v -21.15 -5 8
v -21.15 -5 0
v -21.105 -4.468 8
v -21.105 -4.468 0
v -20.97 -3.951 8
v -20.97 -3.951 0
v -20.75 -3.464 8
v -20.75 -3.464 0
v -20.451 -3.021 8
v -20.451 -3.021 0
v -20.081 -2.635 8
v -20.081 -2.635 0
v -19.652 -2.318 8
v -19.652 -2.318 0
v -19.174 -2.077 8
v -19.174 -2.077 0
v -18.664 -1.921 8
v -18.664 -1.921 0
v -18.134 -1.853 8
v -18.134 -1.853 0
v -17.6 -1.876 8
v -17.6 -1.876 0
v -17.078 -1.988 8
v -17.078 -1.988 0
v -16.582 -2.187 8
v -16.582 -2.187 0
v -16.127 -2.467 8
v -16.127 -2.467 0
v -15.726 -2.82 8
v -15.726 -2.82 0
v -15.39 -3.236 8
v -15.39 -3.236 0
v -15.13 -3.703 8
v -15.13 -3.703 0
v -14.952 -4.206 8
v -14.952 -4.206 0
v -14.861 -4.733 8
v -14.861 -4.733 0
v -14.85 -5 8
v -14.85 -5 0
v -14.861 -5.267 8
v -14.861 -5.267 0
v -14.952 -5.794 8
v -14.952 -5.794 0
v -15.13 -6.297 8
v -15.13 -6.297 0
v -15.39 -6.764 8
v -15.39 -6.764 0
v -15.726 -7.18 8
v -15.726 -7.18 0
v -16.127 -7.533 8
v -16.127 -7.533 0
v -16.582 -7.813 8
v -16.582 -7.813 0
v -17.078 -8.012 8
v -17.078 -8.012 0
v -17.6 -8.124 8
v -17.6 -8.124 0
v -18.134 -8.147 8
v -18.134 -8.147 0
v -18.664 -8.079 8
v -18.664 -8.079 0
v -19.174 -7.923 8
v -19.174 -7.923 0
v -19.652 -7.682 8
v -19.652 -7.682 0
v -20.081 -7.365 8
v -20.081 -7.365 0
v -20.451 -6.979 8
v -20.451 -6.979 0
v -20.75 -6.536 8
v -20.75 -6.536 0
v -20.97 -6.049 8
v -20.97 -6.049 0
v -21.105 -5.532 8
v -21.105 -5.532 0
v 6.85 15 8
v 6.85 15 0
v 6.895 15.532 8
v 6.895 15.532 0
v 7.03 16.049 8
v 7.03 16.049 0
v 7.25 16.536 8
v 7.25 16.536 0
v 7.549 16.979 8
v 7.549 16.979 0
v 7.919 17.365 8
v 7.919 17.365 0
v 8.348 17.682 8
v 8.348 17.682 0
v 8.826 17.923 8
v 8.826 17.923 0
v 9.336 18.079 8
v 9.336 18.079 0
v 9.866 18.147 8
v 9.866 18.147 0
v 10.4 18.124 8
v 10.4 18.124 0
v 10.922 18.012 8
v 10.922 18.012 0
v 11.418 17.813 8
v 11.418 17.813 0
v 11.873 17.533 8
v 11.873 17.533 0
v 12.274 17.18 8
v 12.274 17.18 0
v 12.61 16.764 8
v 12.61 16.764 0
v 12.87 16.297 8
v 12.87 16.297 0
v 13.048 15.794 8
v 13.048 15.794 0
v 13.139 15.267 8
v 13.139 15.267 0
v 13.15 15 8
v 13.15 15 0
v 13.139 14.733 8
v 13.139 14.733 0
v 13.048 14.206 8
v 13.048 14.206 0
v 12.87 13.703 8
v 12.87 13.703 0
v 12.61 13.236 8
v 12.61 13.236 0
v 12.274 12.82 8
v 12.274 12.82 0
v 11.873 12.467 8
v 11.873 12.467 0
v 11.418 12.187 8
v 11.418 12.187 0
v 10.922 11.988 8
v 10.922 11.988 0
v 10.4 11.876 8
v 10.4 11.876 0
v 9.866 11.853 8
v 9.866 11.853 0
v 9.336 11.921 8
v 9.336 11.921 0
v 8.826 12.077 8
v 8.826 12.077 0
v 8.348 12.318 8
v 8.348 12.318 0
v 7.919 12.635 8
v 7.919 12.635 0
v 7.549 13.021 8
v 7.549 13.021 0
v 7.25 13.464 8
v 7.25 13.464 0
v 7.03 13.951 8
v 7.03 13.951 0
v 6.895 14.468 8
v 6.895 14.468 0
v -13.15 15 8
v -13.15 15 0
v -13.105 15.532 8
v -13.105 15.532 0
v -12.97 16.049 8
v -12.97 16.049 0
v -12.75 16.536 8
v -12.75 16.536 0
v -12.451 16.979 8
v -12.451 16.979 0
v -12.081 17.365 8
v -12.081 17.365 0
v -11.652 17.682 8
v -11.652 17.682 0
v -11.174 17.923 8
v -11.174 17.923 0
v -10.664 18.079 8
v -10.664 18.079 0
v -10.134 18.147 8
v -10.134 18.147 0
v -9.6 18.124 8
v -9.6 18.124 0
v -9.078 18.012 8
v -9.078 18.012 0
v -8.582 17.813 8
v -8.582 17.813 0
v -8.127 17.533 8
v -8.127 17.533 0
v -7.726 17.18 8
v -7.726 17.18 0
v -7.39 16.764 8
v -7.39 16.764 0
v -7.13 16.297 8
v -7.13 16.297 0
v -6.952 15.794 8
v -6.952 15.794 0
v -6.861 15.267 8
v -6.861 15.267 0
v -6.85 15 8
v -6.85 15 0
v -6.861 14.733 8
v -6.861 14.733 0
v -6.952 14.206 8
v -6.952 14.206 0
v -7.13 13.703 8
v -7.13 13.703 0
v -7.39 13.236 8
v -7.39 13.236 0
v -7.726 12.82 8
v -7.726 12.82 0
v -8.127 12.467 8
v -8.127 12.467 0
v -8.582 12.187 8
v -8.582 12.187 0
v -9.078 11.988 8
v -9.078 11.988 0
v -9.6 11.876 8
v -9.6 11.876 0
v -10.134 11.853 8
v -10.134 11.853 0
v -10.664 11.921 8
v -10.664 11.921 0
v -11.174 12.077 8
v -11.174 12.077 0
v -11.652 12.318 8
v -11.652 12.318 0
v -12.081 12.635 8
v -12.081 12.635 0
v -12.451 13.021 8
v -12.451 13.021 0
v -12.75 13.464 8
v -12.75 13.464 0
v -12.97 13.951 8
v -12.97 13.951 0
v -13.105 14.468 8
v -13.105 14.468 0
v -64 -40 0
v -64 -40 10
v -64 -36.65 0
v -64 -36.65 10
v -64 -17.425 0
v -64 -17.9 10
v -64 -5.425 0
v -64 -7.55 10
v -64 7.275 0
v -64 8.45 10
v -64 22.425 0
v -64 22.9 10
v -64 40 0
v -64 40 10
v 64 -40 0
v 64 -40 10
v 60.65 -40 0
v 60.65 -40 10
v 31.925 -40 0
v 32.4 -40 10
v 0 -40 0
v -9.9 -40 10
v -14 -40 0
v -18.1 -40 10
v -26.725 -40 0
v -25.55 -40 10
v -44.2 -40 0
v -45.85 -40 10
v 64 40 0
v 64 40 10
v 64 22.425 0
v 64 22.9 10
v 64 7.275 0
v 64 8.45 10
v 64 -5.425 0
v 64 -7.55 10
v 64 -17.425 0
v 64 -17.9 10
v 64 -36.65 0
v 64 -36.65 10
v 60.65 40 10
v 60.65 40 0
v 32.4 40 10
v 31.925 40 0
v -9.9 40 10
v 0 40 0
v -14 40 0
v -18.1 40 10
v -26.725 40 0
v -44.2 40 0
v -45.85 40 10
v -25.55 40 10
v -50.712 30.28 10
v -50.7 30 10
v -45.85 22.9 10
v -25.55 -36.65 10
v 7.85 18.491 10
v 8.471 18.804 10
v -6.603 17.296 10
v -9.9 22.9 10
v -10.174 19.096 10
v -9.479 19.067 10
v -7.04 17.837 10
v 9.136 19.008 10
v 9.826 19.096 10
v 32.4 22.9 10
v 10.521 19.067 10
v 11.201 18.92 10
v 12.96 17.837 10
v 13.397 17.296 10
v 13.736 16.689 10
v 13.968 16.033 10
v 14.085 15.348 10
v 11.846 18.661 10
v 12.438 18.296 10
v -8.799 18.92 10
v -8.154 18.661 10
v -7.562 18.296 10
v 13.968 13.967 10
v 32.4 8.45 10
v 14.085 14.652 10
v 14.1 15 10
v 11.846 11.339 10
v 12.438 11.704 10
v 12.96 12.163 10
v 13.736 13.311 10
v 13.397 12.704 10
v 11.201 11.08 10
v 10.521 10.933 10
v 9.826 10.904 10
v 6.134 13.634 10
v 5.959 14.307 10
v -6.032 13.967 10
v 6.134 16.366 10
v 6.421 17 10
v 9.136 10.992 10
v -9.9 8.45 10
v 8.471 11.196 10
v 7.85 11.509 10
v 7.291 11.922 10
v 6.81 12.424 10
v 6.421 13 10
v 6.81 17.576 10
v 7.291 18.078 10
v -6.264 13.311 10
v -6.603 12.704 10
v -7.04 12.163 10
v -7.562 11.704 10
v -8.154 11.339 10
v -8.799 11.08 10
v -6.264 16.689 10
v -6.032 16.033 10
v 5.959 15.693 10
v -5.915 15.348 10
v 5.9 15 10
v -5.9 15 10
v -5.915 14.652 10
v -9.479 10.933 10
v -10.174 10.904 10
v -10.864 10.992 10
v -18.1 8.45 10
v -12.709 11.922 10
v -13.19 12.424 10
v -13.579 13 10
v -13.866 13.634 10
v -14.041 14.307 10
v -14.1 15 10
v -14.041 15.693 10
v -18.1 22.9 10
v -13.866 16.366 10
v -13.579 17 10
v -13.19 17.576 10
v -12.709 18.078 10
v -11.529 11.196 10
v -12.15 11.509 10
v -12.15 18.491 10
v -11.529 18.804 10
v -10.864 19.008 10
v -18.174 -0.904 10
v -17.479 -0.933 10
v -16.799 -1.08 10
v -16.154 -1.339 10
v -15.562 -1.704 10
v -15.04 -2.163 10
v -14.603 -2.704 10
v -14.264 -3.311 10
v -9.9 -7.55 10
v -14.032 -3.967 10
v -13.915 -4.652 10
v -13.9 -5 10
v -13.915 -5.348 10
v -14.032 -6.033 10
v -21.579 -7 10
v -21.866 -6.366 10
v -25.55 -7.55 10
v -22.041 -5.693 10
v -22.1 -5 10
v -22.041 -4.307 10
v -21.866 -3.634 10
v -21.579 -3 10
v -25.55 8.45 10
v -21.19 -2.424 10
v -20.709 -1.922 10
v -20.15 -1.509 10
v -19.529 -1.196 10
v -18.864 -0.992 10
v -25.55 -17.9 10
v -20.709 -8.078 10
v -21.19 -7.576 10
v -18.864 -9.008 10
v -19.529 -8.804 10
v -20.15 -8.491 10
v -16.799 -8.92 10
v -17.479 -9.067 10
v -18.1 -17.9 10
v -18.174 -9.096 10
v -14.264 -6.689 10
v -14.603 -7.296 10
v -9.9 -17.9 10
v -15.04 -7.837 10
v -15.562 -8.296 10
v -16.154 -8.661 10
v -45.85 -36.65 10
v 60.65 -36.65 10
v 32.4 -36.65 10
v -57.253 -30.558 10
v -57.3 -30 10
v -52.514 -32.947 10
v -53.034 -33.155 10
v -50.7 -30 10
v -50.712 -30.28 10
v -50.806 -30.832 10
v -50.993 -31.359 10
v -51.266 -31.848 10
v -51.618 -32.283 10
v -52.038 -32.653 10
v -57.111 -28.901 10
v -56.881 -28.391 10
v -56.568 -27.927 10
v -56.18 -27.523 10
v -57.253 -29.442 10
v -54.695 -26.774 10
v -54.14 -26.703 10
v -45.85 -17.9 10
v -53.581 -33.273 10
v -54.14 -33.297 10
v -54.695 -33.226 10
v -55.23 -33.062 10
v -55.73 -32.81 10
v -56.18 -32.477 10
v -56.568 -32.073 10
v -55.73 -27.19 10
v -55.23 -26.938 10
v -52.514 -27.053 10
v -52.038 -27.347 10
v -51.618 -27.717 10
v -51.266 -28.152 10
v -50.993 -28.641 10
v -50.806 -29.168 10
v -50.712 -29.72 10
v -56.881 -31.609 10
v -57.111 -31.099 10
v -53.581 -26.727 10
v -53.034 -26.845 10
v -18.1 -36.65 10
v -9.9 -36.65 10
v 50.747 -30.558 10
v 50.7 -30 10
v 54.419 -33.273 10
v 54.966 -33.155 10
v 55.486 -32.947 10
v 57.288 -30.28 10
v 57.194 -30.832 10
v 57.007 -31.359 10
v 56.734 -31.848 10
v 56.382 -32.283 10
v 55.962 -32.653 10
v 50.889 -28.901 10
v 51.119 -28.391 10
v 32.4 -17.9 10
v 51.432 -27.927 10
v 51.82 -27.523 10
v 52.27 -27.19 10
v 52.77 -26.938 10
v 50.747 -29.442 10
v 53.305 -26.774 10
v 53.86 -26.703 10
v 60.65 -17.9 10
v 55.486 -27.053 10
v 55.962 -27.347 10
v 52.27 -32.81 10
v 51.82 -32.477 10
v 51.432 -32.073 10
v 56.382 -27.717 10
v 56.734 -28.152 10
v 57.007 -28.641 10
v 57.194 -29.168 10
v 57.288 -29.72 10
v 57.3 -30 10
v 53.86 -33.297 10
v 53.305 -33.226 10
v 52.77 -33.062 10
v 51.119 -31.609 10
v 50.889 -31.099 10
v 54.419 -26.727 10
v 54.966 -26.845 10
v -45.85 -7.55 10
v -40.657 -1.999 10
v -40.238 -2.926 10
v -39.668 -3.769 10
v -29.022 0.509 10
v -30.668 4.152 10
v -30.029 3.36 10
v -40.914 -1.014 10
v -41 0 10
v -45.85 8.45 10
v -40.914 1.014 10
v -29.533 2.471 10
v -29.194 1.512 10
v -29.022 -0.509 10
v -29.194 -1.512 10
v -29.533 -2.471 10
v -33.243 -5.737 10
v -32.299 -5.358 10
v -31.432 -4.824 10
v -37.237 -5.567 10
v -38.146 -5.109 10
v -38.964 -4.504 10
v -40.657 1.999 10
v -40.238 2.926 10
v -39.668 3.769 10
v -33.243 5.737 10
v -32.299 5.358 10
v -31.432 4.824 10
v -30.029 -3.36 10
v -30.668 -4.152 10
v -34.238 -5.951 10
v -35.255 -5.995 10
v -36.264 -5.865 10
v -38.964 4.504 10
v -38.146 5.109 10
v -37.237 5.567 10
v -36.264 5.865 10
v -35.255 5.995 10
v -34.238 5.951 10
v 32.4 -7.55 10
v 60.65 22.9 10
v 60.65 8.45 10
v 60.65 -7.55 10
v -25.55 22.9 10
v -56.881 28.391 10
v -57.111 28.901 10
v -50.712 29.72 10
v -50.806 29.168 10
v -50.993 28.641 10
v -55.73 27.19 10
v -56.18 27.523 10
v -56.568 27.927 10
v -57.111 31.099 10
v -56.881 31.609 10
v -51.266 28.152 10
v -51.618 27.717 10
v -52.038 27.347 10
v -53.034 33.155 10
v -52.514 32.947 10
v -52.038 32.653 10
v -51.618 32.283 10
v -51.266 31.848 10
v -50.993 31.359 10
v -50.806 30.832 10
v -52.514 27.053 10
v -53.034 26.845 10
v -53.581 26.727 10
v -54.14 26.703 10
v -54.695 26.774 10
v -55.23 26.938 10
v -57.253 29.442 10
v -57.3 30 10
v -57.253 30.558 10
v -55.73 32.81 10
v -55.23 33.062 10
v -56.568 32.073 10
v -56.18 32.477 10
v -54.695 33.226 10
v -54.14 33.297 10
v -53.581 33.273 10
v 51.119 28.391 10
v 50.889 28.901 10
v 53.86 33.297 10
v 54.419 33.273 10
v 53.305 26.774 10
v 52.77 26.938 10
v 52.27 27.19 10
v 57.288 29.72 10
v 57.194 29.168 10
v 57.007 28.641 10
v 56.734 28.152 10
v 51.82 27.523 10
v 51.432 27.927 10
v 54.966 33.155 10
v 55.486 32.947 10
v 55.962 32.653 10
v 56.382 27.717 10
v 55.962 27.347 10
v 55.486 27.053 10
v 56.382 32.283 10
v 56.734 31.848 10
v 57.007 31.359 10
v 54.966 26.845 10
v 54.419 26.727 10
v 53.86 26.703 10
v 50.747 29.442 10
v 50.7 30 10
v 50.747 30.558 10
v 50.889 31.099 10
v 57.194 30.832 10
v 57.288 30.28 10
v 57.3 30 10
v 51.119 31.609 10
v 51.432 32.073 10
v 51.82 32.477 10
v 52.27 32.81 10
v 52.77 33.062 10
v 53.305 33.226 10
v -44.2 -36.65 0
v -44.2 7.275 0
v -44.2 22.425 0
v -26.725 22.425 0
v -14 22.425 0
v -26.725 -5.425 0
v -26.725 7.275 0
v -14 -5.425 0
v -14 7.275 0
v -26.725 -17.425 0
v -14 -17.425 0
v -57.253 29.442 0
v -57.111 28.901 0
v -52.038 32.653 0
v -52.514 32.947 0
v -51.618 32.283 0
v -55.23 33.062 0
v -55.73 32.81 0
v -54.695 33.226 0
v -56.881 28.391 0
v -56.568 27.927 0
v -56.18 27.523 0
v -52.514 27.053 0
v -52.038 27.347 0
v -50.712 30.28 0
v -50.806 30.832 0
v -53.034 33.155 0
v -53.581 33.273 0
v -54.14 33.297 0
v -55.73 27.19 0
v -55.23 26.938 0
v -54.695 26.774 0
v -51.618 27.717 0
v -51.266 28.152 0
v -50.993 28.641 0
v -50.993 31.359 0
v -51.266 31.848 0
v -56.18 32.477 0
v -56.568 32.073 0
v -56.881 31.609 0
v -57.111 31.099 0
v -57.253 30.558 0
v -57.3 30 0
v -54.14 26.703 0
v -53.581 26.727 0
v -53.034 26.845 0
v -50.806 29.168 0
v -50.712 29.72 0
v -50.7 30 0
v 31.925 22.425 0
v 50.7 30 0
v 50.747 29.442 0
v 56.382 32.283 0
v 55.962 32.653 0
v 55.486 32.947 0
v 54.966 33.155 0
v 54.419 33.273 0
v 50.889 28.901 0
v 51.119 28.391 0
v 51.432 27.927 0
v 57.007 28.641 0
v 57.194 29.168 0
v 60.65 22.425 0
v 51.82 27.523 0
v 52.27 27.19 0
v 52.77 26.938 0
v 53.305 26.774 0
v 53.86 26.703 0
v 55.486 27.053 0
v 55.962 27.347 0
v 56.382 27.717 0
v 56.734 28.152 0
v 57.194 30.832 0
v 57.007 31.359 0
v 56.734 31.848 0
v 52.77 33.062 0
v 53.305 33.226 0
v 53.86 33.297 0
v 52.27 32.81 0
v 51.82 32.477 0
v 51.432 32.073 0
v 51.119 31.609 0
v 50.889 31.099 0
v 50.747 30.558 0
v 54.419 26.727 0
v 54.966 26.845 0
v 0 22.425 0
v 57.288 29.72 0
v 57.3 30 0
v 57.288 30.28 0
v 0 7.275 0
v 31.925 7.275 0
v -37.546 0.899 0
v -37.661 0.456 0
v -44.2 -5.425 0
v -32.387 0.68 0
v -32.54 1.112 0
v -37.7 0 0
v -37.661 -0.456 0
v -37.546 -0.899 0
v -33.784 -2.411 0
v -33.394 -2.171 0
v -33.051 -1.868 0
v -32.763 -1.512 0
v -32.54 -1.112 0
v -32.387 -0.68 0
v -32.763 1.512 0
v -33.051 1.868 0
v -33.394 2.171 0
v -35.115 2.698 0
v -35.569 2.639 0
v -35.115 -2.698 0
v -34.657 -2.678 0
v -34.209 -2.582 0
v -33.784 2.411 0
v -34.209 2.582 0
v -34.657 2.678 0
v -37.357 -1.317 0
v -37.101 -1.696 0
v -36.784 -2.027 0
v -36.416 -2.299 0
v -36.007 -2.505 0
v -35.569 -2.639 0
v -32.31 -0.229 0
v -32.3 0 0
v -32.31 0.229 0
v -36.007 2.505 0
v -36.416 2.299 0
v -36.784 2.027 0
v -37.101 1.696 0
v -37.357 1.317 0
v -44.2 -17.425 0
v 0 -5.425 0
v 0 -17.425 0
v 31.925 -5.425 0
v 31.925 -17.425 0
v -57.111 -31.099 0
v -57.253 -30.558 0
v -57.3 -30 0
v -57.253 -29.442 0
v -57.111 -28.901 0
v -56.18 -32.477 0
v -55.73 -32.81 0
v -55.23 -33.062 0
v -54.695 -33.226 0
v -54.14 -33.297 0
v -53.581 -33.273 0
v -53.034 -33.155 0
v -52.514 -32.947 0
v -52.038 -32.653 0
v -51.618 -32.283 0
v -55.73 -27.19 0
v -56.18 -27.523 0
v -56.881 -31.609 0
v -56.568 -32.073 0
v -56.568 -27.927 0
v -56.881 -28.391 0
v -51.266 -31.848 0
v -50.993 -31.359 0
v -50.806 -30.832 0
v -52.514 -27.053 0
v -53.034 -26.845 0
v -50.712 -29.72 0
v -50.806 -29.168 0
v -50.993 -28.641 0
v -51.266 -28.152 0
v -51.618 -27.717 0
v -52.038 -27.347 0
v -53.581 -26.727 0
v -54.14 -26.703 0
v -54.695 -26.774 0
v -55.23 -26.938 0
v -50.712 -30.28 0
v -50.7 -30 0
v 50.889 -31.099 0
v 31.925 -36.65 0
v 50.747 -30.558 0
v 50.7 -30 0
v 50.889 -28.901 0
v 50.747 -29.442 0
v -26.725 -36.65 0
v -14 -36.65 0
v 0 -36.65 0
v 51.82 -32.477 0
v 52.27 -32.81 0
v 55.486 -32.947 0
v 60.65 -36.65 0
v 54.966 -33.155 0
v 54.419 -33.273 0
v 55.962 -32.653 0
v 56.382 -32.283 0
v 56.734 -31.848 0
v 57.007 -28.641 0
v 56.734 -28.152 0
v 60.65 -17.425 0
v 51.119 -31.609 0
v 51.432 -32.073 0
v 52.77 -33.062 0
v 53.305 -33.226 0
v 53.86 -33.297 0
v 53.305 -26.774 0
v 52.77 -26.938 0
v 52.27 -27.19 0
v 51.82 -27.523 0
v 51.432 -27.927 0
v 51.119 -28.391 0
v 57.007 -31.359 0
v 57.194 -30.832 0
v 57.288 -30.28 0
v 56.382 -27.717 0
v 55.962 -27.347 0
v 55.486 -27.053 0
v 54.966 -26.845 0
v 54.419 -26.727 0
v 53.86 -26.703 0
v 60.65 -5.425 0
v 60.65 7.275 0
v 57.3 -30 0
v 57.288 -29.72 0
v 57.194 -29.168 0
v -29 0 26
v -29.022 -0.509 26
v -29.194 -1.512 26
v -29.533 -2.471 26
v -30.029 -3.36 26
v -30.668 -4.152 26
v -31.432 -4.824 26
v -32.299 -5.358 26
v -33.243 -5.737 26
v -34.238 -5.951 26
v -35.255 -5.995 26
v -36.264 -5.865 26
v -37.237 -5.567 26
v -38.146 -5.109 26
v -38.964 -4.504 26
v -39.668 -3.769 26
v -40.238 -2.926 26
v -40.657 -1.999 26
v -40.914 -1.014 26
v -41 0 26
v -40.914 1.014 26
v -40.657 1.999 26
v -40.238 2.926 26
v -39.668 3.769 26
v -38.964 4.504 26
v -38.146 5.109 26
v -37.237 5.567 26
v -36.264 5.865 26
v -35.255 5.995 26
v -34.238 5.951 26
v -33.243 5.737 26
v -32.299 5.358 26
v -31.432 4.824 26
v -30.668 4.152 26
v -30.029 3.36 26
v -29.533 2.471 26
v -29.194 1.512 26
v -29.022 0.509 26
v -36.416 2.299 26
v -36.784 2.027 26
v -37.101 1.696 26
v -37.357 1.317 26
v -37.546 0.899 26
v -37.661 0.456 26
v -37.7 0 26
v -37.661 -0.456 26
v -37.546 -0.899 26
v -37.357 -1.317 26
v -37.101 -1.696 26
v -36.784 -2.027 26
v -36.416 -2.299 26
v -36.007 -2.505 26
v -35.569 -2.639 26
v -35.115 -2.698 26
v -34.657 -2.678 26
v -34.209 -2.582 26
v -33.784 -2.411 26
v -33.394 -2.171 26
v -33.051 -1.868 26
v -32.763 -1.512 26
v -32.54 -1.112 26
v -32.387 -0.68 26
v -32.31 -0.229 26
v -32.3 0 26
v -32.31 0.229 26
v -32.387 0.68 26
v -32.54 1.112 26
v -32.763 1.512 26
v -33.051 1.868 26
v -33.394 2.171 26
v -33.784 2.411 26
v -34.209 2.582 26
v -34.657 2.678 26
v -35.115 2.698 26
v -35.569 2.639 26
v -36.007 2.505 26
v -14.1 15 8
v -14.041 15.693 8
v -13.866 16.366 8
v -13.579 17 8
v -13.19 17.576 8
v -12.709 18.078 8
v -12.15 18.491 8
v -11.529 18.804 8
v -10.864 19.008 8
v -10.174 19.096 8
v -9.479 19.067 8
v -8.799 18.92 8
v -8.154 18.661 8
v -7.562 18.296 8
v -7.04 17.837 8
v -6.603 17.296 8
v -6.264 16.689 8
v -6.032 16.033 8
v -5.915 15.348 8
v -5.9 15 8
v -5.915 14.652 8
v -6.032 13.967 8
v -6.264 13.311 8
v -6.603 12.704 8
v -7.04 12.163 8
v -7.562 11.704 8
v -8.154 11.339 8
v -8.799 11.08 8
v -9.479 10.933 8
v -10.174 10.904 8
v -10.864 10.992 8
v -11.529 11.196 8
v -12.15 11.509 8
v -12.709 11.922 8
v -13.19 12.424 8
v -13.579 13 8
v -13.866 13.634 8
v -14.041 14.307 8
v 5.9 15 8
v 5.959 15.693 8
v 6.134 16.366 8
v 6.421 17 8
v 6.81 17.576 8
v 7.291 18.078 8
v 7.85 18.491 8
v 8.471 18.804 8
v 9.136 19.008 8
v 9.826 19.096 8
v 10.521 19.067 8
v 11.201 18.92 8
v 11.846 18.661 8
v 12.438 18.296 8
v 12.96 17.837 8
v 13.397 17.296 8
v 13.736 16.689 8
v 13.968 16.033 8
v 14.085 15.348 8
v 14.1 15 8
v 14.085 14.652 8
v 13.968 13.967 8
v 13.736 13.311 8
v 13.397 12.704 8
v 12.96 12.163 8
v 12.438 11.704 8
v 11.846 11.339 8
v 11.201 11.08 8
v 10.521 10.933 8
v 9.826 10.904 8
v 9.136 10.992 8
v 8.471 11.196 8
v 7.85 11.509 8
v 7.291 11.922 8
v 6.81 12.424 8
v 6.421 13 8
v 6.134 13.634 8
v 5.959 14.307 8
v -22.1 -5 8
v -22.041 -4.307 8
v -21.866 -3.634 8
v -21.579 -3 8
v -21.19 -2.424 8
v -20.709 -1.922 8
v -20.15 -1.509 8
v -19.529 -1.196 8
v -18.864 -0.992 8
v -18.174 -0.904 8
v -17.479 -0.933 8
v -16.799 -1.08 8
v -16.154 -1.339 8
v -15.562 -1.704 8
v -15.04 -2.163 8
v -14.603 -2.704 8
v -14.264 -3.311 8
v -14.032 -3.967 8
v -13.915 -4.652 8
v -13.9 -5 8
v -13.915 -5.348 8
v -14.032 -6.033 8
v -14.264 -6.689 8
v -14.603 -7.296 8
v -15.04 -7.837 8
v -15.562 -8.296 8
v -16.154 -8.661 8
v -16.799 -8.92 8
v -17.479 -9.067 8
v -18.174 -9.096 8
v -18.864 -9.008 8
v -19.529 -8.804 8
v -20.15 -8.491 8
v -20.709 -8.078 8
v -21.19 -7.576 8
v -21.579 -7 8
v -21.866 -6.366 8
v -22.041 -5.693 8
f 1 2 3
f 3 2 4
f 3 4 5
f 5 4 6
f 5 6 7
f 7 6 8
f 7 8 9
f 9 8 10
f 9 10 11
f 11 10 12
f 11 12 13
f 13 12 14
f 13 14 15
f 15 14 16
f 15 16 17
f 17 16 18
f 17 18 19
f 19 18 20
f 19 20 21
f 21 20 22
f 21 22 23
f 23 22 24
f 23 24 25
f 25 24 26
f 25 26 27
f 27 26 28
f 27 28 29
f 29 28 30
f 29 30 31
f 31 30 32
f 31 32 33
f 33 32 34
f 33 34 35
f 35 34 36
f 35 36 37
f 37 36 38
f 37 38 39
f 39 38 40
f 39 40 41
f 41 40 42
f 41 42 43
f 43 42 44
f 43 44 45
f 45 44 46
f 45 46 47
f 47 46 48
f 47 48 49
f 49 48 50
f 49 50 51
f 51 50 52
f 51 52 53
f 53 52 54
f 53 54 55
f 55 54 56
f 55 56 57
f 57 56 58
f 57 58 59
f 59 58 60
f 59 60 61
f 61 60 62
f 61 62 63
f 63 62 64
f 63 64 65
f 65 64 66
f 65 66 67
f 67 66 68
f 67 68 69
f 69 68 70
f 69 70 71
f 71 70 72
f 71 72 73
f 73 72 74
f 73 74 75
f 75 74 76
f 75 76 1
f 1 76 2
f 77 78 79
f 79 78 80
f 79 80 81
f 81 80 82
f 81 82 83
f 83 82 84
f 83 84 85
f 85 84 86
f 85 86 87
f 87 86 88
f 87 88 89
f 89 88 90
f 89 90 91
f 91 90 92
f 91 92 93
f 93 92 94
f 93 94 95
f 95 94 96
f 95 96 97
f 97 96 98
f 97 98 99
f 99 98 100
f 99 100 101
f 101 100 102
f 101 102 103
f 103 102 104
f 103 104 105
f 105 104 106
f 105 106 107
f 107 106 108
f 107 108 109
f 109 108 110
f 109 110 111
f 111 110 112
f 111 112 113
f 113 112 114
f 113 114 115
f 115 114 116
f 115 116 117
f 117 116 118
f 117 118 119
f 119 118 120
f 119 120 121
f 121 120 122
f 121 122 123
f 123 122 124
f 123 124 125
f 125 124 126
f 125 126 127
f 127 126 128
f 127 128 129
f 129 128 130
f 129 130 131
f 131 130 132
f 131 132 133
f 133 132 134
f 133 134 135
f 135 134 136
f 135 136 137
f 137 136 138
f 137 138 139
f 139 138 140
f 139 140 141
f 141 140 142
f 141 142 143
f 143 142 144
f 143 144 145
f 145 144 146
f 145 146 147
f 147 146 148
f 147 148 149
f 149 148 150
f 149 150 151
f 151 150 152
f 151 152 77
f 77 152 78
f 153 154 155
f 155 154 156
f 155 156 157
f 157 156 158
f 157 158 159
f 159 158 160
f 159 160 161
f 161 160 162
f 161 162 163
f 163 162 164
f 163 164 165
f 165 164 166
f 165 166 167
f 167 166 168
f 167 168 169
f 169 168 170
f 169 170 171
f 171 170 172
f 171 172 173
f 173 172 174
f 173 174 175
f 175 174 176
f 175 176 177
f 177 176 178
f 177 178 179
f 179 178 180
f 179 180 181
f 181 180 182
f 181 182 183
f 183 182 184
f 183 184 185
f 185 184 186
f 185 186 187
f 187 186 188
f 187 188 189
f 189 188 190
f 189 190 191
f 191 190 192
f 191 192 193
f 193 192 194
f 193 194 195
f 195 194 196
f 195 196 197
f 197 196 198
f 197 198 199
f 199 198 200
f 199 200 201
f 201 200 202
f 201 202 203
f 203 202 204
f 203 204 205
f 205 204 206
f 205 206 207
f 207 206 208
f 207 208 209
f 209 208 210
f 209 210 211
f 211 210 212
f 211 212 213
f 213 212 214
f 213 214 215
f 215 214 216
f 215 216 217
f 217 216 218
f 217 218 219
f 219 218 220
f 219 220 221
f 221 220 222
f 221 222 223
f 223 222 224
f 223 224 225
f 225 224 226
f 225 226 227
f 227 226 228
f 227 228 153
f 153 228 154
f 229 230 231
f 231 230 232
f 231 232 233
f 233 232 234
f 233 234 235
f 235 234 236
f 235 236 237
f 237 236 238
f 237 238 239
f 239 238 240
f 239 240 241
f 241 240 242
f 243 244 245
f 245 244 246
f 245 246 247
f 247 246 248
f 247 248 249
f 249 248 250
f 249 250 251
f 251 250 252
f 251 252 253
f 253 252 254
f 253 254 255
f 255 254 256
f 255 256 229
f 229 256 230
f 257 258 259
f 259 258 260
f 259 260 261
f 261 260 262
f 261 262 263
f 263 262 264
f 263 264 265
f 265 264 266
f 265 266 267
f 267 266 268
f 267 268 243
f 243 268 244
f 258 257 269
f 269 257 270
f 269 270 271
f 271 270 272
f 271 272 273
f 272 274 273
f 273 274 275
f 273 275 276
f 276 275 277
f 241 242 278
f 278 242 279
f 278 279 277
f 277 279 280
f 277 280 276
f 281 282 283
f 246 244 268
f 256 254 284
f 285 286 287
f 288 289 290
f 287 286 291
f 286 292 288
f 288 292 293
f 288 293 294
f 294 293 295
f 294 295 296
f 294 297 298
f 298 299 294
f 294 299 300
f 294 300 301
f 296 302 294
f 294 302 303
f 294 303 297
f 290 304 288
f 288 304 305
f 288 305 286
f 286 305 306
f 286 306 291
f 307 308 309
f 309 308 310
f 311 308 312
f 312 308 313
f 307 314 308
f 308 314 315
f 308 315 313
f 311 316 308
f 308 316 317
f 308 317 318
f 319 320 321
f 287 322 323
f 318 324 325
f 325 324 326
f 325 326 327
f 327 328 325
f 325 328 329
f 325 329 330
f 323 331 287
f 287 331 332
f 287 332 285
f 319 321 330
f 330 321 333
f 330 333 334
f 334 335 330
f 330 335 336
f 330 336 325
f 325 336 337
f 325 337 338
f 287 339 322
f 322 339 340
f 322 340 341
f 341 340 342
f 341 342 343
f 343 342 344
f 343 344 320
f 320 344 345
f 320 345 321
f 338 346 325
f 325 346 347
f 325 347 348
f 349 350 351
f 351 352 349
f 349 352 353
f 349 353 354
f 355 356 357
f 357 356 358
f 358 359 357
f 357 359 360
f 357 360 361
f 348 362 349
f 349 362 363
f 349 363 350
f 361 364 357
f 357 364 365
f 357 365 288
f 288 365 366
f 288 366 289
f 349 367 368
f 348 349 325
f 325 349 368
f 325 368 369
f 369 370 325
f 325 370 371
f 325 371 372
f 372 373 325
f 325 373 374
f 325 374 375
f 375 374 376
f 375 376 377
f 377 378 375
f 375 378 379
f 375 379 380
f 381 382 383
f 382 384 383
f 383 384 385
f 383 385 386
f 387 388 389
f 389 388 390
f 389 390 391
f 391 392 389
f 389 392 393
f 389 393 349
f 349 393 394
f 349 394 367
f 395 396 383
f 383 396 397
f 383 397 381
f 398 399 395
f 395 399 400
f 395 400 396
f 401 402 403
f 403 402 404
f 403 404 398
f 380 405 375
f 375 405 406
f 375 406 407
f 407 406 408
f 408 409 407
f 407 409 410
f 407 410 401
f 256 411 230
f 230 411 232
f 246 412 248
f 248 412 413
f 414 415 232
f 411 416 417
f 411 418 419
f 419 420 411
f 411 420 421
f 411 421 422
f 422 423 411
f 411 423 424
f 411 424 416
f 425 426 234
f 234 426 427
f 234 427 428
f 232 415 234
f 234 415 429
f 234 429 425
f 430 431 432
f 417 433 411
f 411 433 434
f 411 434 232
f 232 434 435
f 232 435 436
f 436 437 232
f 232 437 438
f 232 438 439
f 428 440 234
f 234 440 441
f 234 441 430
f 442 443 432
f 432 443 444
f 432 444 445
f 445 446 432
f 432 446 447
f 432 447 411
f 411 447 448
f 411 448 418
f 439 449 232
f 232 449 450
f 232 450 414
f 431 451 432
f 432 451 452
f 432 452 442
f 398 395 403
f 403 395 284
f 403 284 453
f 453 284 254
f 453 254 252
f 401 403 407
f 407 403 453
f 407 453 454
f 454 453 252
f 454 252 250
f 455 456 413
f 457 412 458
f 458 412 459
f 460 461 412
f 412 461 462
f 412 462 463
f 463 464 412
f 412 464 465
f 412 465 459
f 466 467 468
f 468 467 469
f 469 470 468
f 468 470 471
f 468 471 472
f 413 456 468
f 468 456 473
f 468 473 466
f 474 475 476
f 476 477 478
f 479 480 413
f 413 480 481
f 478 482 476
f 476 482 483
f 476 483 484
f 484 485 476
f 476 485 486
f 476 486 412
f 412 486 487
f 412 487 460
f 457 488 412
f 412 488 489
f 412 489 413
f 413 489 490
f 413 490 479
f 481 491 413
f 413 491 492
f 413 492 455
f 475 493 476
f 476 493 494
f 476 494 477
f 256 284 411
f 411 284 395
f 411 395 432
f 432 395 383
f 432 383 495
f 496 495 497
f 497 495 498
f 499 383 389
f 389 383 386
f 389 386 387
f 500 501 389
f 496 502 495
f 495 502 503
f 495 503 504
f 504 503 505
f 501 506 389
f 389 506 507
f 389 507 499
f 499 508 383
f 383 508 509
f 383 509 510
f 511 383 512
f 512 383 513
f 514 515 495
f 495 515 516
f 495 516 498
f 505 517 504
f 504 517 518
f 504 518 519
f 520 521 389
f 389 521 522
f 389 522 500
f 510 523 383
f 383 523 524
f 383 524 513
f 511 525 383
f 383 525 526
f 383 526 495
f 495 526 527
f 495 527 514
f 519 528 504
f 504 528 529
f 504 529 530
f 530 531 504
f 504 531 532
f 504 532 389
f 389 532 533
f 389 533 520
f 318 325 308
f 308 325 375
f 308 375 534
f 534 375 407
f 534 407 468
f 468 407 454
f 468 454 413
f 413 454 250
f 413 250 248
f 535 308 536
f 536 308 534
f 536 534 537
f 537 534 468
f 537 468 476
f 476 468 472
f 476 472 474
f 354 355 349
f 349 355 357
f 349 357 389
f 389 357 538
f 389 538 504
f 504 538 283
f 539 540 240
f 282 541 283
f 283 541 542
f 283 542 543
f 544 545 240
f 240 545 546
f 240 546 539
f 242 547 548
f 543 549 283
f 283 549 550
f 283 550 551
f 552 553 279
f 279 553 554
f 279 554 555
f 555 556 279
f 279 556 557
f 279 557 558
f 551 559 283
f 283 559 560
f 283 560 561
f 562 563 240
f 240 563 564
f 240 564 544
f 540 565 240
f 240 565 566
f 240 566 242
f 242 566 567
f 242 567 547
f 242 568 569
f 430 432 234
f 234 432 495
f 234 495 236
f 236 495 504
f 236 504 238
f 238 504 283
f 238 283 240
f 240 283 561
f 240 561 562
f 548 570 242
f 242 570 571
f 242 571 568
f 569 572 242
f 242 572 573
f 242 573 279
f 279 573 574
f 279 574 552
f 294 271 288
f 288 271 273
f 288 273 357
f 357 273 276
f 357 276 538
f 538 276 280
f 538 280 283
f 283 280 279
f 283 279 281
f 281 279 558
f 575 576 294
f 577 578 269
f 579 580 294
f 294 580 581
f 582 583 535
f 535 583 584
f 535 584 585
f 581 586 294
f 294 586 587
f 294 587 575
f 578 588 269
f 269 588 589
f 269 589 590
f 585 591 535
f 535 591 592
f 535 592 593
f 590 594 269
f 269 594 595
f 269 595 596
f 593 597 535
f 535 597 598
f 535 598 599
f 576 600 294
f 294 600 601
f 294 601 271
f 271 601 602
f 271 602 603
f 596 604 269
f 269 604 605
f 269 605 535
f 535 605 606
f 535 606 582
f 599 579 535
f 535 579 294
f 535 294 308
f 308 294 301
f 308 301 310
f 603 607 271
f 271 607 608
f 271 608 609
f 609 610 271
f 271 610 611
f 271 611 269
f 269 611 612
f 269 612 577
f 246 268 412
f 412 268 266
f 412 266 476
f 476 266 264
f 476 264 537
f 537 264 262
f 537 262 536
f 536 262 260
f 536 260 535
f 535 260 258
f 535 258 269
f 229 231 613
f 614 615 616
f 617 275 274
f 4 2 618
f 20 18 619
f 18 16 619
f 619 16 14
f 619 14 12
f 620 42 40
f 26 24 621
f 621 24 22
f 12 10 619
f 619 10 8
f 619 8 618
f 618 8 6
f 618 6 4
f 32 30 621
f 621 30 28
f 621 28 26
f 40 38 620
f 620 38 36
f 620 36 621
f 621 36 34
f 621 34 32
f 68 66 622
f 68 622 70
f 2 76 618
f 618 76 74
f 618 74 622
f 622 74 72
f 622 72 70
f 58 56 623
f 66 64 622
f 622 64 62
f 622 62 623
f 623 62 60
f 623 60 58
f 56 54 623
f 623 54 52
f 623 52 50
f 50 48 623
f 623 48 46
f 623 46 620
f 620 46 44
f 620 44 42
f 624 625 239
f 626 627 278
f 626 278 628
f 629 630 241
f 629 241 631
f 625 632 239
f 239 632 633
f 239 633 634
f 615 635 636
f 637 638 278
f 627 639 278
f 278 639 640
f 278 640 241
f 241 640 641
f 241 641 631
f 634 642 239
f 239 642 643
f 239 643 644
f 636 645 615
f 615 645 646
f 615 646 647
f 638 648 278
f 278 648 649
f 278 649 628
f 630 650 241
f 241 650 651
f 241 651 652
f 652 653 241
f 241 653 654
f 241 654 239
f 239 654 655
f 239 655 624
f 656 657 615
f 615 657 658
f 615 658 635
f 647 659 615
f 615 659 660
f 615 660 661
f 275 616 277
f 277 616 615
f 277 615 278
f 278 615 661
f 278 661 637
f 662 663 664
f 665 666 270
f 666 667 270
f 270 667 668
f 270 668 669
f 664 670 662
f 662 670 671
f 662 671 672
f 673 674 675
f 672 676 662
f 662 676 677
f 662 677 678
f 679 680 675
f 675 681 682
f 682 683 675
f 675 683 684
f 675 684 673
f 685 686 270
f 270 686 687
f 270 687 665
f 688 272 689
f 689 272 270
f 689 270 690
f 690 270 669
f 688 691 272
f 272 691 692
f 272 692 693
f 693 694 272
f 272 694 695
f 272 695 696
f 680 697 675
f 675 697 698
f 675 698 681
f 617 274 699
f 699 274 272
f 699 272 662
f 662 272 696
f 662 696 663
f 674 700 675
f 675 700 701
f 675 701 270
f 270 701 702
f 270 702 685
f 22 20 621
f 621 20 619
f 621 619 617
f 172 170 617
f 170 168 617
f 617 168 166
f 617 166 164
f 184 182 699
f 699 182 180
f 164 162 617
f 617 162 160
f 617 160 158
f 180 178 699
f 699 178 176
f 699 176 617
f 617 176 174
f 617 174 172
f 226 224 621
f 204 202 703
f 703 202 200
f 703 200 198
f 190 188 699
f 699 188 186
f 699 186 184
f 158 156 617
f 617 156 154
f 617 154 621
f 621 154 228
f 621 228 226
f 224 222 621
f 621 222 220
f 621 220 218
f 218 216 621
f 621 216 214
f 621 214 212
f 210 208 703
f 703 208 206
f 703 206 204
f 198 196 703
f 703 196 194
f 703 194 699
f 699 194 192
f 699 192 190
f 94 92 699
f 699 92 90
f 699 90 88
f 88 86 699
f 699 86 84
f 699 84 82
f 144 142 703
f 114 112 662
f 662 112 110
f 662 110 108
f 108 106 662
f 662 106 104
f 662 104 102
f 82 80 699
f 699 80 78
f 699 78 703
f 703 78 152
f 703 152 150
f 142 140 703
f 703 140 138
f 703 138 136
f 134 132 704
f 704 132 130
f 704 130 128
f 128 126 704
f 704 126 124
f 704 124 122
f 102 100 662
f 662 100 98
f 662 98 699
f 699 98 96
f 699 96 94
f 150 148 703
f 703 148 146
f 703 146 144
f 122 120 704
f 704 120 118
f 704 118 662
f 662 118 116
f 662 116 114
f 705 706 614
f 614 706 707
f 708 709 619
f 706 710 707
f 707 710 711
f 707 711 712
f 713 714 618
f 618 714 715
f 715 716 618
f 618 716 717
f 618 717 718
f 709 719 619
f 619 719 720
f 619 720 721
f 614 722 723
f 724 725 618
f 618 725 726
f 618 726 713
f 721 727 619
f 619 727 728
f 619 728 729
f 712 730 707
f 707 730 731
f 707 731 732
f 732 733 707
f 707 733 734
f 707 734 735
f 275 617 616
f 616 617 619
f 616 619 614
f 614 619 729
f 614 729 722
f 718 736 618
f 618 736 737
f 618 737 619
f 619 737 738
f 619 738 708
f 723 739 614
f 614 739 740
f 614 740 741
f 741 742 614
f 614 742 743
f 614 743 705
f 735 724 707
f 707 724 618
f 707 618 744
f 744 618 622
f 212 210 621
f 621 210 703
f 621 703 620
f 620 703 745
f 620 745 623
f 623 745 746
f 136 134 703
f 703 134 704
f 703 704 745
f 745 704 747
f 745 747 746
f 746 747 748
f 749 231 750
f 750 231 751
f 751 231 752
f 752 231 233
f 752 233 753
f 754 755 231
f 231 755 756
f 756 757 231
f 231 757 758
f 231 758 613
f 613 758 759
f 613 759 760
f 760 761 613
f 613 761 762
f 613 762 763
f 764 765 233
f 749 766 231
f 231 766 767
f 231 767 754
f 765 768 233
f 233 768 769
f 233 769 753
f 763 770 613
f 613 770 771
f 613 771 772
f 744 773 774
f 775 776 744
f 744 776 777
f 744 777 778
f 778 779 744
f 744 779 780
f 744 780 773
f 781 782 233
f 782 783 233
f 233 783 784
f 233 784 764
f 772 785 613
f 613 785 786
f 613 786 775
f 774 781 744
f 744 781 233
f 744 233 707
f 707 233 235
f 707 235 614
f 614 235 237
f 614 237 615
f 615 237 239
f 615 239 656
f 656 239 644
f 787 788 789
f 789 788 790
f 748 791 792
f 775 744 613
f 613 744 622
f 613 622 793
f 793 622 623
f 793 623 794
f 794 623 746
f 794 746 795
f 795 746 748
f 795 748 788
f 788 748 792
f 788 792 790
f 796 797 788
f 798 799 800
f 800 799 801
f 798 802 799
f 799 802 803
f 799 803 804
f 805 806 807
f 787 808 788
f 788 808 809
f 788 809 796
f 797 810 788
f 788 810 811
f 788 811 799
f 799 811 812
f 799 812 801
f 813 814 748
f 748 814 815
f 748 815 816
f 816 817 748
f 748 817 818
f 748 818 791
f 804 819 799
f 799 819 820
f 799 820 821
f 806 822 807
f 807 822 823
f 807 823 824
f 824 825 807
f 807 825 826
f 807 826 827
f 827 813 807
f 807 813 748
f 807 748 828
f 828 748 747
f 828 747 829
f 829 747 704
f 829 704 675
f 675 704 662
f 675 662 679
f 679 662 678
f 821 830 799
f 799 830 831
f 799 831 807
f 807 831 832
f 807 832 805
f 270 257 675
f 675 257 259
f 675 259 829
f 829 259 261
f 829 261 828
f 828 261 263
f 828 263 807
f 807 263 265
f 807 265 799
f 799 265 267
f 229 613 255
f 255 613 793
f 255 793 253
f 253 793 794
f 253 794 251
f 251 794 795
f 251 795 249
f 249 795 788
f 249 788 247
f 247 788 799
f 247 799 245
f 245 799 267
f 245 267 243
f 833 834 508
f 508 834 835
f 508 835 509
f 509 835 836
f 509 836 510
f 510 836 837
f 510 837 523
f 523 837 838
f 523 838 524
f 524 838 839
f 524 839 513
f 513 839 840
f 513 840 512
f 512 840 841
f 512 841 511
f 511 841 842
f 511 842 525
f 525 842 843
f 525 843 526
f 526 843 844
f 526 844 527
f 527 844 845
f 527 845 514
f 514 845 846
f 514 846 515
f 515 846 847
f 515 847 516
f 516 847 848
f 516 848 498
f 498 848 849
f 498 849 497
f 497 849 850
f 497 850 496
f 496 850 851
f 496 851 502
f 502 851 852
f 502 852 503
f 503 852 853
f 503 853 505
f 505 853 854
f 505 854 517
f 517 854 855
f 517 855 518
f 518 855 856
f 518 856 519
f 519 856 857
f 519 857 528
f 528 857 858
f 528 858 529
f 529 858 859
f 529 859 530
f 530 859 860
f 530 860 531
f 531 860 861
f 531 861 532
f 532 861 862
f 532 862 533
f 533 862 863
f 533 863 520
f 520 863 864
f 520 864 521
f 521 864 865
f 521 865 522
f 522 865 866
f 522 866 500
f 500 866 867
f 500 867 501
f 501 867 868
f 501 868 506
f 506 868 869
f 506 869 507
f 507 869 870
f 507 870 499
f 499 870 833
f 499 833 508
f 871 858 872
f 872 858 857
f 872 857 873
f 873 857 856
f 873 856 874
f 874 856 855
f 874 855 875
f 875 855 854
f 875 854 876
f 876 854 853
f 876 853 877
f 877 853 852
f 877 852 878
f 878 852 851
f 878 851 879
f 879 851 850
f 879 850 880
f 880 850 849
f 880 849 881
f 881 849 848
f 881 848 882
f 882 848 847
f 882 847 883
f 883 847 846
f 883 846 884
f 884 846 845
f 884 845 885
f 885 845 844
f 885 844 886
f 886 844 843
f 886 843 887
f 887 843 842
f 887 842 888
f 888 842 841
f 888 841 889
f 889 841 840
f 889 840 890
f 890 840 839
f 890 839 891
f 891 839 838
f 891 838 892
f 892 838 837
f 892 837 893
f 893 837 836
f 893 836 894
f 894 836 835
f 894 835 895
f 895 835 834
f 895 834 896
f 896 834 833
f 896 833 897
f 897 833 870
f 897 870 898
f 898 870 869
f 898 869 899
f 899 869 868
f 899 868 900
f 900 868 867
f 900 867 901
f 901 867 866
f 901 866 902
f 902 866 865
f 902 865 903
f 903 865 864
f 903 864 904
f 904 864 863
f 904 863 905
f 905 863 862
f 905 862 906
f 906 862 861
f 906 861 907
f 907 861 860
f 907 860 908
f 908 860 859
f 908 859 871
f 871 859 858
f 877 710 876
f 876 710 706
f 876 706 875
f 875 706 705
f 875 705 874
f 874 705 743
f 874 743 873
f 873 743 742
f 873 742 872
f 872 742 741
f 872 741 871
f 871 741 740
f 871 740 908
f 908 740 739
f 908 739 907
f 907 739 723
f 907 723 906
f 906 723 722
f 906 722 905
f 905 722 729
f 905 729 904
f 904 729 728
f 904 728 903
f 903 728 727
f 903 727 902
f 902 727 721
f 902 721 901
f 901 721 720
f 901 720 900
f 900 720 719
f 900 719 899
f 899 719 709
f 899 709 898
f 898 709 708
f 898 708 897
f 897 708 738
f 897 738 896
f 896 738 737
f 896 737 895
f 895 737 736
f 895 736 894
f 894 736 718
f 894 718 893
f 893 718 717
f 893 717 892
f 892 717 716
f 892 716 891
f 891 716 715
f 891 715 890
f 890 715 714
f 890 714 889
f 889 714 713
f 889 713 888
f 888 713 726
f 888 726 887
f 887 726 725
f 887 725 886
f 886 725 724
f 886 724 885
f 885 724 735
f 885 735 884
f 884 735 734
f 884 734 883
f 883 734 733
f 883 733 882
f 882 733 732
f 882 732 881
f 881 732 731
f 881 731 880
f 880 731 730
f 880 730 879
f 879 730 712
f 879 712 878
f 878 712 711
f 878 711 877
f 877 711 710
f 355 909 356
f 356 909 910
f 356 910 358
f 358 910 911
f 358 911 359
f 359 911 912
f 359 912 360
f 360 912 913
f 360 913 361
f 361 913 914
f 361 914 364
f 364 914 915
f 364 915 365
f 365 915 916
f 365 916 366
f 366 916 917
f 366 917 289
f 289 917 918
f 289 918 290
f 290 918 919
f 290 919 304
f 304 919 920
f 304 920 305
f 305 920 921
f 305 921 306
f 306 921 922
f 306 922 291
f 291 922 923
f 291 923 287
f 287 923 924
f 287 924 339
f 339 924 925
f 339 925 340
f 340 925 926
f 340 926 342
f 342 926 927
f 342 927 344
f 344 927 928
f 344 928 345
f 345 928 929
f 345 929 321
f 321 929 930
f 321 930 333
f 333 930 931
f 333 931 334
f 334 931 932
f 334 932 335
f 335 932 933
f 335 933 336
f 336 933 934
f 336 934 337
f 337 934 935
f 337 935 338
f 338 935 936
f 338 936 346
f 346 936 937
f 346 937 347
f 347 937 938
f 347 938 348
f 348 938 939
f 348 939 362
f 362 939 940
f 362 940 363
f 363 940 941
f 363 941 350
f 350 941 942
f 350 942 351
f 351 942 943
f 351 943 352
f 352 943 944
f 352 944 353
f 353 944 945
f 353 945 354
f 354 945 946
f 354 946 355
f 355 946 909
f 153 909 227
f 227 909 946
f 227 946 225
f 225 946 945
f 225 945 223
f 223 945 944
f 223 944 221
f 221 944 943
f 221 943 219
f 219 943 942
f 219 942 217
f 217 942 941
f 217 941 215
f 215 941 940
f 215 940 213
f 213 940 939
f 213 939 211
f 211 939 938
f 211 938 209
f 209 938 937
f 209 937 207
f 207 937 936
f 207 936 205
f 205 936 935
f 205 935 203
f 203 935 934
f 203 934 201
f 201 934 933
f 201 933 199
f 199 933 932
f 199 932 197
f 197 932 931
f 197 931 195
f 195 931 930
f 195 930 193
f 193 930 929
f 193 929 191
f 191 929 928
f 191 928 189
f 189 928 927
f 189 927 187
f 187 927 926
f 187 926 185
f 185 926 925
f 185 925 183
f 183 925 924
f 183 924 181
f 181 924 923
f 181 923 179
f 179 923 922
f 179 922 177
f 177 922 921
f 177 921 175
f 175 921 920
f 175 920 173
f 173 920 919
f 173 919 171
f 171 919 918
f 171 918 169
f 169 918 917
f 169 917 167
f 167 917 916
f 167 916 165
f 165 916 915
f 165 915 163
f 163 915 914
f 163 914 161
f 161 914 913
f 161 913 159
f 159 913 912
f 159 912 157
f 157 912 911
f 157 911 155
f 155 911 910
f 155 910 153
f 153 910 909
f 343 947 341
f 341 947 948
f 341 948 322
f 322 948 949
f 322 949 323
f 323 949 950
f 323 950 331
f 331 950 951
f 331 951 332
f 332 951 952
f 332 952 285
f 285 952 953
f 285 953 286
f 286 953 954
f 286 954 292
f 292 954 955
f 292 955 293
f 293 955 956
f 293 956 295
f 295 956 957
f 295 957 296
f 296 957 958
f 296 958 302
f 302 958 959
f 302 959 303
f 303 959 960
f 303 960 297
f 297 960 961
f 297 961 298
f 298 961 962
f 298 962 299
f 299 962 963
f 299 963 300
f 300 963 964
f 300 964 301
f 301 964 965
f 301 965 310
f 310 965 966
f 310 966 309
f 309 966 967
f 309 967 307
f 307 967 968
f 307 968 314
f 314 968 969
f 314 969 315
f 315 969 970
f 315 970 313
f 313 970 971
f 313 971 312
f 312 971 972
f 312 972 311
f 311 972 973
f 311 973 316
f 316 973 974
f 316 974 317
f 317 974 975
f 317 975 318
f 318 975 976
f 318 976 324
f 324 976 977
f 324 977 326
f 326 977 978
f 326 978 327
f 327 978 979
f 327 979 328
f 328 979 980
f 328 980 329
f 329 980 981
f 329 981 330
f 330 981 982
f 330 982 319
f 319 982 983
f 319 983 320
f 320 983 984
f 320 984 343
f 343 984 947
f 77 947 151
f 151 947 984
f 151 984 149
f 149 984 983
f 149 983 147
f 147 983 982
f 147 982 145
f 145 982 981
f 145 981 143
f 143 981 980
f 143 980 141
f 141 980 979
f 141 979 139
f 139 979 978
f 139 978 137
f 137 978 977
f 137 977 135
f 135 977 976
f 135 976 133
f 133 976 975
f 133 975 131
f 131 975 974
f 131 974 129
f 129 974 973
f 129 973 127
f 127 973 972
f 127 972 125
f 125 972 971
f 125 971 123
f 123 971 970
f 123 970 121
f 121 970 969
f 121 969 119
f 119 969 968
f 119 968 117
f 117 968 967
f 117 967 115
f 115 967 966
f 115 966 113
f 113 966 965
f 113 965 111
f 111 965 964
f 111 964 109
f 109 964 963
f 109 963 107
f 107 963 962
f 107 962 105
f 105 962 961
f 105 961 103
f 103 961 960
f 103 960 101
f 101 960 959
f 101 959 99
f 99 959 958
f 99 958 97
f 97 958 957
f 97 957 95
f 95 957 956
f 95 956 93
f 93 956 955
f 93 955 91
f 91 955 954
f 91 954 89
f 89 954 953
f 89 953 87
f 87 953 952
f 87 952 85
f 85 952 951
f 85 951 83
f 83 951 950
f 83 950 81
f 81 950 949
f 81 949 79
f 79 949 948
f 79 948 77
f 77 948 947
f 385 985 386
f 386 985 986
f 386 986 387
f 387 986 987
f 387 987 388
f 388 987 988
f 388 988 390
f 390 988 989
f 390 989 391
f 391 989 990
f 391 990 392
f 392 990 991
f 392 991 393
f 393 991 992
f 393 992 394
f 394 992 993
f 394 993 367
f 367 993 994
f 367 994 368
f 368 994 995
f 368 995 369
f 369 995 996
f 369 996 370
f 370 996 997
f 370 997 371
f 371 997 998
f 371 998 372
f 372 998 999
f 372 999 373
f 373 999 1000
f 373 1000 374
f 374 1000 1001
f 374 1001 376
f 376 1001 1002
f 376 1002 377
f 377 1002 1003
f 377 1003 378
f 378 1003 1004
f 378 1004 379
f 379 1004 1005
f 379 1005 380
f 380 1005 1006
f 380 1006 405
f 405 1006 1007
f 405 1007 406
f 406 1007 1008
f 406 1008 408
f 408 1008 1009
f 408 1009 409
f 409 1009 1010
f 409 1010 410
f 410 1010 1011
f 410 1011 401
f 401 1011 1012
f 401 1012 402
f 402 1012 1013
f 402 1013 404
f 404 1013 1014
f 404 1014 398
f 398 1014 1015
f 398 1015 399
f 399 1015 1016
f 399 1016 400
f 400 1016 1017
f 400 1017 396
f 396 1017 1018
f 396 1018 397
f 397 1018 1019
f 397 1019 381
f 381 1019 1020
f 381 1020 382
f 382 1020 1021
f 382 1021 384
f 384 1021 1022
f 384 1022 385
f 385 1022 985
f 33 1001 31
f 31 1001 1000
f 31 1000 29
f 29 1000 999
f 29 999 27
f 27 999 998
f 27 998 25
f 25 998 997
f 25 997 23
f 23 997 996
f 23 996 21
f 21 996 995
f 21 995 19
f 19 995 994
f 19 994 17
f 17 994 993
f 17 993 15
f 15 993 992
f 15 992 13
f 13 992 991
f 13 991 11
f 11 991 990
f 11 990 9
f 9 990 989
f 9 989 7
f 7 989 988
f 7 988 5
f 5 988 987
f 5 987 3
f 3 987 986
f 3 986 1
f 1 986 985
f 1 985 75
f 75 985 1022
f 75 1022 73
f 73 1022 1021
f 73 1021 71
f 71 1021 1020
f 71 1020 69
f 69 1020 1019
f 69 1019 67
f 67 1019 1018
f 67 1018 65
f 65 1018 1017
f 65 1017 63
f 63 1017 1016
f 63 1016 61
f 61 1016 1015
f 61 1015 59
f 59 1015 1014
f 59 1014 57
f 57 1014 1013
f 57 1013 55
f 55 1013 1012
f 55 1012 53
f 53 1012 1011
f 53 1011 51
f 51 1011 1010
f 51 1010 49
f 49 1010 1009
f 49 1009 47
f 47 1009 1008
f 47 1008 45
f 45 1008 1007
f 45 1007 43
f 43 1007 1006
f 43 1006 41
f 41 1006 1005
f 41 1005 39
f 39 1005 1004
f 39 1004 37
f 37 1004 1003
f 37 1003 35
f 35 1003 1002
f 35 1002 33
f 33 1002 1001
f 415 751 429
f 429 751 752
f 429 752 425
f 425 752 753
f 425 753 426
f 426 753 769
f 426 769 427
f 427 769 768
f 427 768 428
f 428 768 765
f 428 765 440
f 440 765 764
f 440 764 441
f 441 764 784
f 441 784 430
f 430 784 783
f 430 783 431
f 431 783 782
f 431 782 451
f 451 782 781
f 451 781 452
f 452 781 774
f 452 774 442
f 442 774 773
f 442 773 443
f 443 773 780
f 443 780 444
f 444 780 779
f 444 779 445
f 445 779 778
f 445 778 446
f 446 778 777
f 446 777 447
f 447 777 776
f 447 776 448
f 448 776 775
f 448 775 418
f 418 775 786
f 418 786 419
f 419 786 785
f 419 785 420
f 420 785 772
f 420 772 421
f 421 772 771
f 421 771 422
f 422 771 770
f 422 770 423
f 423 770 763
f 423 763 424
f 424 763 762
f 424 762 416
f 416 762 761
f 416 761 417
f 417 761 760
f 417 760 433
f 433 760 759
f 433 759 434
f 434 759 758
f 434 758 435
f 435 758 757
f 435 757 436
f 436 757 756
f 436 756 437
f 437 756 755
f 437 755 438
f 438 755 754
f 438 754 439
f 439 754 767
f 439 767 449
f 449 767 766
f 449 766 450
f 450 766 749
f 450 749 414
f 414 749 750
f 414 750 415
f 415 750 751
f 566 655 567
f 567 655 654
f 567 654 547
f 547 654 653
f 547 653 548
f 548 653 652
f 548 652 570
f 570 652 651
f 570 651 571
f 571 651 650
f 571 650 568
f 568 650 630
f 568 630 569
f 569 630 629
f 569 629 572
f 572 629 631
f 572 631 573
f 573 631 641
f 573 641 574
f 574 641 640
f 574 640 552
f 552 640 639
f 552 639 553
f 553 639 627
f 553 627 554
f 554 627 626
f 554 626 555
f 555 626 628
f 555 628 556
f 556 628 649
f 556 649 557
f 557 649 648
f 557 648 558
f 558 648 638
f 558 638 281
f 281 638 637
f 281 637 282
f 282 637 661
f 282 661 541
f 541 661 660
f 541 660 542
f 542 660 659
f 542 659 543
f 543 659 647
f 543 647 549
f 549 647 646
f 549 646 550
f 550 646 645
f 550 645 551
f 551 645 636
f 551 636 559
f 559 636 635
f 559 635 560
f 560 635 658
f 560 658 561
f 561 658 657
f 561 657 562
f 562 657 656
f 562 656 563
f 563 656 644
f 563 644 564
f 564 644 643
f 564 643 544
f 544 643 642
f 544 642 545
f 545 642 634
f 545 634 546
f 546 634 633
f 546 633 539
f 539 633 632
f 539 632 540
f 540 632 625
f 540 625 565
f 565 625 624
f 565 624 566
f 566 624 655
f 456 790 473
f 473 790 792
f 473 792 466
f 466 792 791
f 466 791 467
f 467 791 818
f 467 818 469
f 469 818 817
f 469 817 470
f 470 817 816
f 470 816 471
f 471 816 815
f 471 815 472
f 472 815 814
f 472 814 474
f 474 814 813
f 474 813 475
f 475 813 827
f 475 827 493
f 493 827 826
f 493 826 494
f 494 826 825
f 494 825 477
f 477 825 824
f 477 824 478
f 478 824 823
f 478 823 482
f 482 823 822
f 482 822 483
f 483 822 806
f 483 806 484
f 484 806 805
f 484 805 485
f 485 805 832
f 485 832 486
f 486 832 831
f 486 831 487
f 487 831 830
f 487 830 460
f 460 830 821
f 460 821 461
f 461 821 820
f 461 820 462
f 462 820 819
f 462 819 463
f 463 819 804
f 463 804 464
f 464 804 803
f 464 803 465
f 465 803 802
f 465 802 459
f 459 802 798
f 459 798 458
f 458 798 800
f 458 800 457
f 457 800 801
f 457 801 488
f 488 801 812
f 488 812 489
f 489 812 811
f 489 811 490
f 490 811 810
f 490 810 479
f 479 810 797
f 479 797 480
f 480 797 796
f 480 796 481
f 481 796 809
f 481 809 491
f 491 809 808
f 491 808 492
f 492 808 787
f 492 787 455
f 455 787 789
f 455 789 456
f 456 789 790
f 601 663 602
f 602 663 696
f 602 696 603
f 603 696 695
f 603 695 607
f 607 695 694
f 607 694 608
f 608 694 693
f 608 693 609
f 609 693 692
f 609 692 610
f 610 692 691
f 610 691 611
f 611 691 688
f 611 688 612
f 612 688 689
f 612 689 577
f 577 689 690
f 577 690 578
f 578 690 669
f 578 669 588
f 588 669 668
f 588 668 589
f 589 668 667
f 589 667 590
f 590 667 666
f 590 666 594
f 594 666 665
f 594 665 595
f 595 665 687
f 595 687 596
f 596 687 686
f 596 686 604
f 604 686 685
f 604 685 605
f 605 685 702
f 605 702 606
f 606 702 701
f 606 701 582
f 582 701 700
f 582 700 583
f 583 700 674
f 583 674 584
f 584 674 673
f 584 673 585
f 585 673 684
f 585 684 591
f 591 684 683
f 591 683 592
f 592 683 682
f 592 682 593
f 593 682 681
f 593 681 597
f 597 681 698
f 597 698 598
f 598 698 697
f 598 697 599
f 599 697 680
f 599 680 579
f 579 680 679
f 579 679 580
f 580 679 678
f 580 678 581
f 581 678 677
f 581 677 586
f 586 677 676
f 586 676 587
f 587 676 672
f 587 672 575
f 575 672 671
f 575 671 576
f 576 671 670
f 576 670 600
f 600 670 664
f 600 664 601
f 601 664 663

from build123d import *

# Parameters (mm, degrees)
SKETCH2_W                          = 128
SKETCH2_H                          = 80
BASE_PLATE_DEPTH                   = 10
PIVOT_PEDESTAL_START               = 10
SKETCH3_R                          = 6
PIVOT_PEDESTAL_DEPTH               = 16
SKETCH4_R                          = 2.7
PIVOT_CLEARANCE_DEPTH              = 26
SKETCH5_R                          = 3.15
LOCATOR_CLEARANCE_DEPTH            = 10
SKETCH6_R                          = 3.15
CUT_EXTRUDE3_DEPTH                 = 10
SKETCH7_R                          = 3.15
SIDE_LOCATOR_CLEARANCE_DEPTH       = 10
LOCATOR_SHOULDER_COUNTERBORE_START = 8
SKETCH8_R                          = 4.1
LOCATOR_SHOULDER_COUNTERBORE_DEPTH = 2
CUT_EXTRUDE6_START                 = 8
SKETCH9_R                          = 4.1
CUT_EXTRUDE6_DEPTH                 = 2
SIDE_SHOULDER_COUNTERBORE_START    = 8
SKETCH10_R                         = 4.1
SIDE_SHOULDER_COUNTERBORE_DEPTH    = 2
SKETCH11_R                         = 3.3
BENCH_MOUNT_M6_CLEARANCE_DEPTH     = 10
SKETCH12_R                         = 3.3
CUT_EXTRUDE9_DEPTH                 = 10
SKETCH13_R                         = 3.3
CUT_EXTRUDE10_DEPTH                = 10
SKETCH14_R                         = 3.3
CUT_EXTRUDE11_DEPTH                = 10


with BuildPart() as part:
    # Sketch2 → Base_plate (new body)
    with BuildSketch(Plane.XY):
        Rectangle(SKETCH2_W, SKETCH2_H)
    extrude(amount=BASE_PLATE_DEPTH)

    # Sketch3 → Pivot_pedestal (add)
    with BuildSketch(Plane.XY.offset(PIVOT_PEDESTAL_START)):
        with Locations(Location((-35, 0, 0), (0, 0, 180))):
            Circle(SKETCH3_R)
    extrude(amount=PIVOT_PEDESTAL_DEPTH)

    # Sketch4 → Pivot_clearance (cut)
    with BuildSketch(Plane.XY):
        with Locations(Location((-35, 0, 0), (0, 0, 180))):
            Circle(SKETCH4_R)
    extrude(amount=PIVOT_CLEARANCE_DEPTH, mode=Mode.SUBTRACT)

    # Sketch5 → Locator_clearance (cut)
    with BuildSketch(Plane.XY):
        with Locations((-10, 15)):
            Circle(SKETCH5_R)
    extrude(amount=LOCATOR_CLEARANCE_DEPTH, mode=Mode.SUBTRACT)

    # Sketch6 → Cut-Extrude3 (cut)
    with BuildSketch(Plane.XY):
        with Locations((10, 15)):
            Circle(SKETCH6_R)
    extrude(amount=CUT_EXTRUDE3_DEPTH, mode=Mode.SUBTRACT)

    # Sketch7 → Side_locator_clearance (cut)
    with BuildSketch(Plane.XY):
        with Locations((-18, -5)):
            Circle(SKETCH7_R)
    extrude(amount=SIDE_LOCATOR_CLEARANCE_DEPTH, mode=Mode.SUBTRACT)

    # Sketch8 → Locator_shoulder_counterbore (cut)
    with BuildSketch(Plane.XY.offset(LOCATOR_SHOULDER_COUNTERBORE_START)):
        with Locations((-10, 15)):
            Circle(SKETCH8_R)
    extrude(amount=LOCATOR_SHOULDER_COUNTERBORE_DEPTH, mode=Mode.SUBTRACT)

    # Sketch9 → Cut-Extrude6 (cut)
    with BuildSketch(Plane.XY.offset(CUT_EXTRUDE6_START)):
        with Locations((10, 15)):
            Circle(SKETCH9_R)
    extrude(amount=CUT_EXTRUDE6_DEPTH, mode=Mode.SUBTRACT)

    # Sketch10 → Side_shoulder_counterbore (cut)
    with BuildSketch(Plane.XY.offset(SIDE_SHOULDER_COUNTERBORE_START)):
        with Locations((-18, -5)):
            Circle(SKETCH10_R)
    extrude(amount=SIDE_SHOULDER_COUNTERBORE_DEPTH, mode=Mode.SUBTRACT)

    # Sketch11 → Bench_mount_M6_clearance (cut)
    with BuildSketch(Plane.XY):
        with Locations((-54, -30)):
            Circle(SKETCH11_R)
    extrude(amount=BENCH_MOUNT_M6_CLEARANCE_DEPTH, mode=Mode.SUBTRACT)

    # Sketch12 → Cut-Extrude9 (cut)
    with BuildSketch(Plane.XY):
        with Locations((-54, 30)):
            Circle(SKETCH12_R)
    extrude(amount=CUT_EXTRUDE9_DEPTH, mode=Mode.SUBTRACT)

    # Sketch13 → Cut-Extrude10 (cut)
    with BuildSketch(Plane.XY):
        with Locations((54, -30)):
            Circle(SKETCH13_R)
    extrude(amount=CUT_EXTRUDE10_DEPTH, mode=Mode.SUBTRACT)

    # Sketch14 → Cut-Extrude11 (cut)
    with BuildSketch(Plane.XY):
        with Locations((54, 30)):
            Circle(SKETCH14_R)
    extrude(amount=CUT_EXTRUDE11_DEPTH, mode=Mode.SUBTRACT)


solid = part.part
